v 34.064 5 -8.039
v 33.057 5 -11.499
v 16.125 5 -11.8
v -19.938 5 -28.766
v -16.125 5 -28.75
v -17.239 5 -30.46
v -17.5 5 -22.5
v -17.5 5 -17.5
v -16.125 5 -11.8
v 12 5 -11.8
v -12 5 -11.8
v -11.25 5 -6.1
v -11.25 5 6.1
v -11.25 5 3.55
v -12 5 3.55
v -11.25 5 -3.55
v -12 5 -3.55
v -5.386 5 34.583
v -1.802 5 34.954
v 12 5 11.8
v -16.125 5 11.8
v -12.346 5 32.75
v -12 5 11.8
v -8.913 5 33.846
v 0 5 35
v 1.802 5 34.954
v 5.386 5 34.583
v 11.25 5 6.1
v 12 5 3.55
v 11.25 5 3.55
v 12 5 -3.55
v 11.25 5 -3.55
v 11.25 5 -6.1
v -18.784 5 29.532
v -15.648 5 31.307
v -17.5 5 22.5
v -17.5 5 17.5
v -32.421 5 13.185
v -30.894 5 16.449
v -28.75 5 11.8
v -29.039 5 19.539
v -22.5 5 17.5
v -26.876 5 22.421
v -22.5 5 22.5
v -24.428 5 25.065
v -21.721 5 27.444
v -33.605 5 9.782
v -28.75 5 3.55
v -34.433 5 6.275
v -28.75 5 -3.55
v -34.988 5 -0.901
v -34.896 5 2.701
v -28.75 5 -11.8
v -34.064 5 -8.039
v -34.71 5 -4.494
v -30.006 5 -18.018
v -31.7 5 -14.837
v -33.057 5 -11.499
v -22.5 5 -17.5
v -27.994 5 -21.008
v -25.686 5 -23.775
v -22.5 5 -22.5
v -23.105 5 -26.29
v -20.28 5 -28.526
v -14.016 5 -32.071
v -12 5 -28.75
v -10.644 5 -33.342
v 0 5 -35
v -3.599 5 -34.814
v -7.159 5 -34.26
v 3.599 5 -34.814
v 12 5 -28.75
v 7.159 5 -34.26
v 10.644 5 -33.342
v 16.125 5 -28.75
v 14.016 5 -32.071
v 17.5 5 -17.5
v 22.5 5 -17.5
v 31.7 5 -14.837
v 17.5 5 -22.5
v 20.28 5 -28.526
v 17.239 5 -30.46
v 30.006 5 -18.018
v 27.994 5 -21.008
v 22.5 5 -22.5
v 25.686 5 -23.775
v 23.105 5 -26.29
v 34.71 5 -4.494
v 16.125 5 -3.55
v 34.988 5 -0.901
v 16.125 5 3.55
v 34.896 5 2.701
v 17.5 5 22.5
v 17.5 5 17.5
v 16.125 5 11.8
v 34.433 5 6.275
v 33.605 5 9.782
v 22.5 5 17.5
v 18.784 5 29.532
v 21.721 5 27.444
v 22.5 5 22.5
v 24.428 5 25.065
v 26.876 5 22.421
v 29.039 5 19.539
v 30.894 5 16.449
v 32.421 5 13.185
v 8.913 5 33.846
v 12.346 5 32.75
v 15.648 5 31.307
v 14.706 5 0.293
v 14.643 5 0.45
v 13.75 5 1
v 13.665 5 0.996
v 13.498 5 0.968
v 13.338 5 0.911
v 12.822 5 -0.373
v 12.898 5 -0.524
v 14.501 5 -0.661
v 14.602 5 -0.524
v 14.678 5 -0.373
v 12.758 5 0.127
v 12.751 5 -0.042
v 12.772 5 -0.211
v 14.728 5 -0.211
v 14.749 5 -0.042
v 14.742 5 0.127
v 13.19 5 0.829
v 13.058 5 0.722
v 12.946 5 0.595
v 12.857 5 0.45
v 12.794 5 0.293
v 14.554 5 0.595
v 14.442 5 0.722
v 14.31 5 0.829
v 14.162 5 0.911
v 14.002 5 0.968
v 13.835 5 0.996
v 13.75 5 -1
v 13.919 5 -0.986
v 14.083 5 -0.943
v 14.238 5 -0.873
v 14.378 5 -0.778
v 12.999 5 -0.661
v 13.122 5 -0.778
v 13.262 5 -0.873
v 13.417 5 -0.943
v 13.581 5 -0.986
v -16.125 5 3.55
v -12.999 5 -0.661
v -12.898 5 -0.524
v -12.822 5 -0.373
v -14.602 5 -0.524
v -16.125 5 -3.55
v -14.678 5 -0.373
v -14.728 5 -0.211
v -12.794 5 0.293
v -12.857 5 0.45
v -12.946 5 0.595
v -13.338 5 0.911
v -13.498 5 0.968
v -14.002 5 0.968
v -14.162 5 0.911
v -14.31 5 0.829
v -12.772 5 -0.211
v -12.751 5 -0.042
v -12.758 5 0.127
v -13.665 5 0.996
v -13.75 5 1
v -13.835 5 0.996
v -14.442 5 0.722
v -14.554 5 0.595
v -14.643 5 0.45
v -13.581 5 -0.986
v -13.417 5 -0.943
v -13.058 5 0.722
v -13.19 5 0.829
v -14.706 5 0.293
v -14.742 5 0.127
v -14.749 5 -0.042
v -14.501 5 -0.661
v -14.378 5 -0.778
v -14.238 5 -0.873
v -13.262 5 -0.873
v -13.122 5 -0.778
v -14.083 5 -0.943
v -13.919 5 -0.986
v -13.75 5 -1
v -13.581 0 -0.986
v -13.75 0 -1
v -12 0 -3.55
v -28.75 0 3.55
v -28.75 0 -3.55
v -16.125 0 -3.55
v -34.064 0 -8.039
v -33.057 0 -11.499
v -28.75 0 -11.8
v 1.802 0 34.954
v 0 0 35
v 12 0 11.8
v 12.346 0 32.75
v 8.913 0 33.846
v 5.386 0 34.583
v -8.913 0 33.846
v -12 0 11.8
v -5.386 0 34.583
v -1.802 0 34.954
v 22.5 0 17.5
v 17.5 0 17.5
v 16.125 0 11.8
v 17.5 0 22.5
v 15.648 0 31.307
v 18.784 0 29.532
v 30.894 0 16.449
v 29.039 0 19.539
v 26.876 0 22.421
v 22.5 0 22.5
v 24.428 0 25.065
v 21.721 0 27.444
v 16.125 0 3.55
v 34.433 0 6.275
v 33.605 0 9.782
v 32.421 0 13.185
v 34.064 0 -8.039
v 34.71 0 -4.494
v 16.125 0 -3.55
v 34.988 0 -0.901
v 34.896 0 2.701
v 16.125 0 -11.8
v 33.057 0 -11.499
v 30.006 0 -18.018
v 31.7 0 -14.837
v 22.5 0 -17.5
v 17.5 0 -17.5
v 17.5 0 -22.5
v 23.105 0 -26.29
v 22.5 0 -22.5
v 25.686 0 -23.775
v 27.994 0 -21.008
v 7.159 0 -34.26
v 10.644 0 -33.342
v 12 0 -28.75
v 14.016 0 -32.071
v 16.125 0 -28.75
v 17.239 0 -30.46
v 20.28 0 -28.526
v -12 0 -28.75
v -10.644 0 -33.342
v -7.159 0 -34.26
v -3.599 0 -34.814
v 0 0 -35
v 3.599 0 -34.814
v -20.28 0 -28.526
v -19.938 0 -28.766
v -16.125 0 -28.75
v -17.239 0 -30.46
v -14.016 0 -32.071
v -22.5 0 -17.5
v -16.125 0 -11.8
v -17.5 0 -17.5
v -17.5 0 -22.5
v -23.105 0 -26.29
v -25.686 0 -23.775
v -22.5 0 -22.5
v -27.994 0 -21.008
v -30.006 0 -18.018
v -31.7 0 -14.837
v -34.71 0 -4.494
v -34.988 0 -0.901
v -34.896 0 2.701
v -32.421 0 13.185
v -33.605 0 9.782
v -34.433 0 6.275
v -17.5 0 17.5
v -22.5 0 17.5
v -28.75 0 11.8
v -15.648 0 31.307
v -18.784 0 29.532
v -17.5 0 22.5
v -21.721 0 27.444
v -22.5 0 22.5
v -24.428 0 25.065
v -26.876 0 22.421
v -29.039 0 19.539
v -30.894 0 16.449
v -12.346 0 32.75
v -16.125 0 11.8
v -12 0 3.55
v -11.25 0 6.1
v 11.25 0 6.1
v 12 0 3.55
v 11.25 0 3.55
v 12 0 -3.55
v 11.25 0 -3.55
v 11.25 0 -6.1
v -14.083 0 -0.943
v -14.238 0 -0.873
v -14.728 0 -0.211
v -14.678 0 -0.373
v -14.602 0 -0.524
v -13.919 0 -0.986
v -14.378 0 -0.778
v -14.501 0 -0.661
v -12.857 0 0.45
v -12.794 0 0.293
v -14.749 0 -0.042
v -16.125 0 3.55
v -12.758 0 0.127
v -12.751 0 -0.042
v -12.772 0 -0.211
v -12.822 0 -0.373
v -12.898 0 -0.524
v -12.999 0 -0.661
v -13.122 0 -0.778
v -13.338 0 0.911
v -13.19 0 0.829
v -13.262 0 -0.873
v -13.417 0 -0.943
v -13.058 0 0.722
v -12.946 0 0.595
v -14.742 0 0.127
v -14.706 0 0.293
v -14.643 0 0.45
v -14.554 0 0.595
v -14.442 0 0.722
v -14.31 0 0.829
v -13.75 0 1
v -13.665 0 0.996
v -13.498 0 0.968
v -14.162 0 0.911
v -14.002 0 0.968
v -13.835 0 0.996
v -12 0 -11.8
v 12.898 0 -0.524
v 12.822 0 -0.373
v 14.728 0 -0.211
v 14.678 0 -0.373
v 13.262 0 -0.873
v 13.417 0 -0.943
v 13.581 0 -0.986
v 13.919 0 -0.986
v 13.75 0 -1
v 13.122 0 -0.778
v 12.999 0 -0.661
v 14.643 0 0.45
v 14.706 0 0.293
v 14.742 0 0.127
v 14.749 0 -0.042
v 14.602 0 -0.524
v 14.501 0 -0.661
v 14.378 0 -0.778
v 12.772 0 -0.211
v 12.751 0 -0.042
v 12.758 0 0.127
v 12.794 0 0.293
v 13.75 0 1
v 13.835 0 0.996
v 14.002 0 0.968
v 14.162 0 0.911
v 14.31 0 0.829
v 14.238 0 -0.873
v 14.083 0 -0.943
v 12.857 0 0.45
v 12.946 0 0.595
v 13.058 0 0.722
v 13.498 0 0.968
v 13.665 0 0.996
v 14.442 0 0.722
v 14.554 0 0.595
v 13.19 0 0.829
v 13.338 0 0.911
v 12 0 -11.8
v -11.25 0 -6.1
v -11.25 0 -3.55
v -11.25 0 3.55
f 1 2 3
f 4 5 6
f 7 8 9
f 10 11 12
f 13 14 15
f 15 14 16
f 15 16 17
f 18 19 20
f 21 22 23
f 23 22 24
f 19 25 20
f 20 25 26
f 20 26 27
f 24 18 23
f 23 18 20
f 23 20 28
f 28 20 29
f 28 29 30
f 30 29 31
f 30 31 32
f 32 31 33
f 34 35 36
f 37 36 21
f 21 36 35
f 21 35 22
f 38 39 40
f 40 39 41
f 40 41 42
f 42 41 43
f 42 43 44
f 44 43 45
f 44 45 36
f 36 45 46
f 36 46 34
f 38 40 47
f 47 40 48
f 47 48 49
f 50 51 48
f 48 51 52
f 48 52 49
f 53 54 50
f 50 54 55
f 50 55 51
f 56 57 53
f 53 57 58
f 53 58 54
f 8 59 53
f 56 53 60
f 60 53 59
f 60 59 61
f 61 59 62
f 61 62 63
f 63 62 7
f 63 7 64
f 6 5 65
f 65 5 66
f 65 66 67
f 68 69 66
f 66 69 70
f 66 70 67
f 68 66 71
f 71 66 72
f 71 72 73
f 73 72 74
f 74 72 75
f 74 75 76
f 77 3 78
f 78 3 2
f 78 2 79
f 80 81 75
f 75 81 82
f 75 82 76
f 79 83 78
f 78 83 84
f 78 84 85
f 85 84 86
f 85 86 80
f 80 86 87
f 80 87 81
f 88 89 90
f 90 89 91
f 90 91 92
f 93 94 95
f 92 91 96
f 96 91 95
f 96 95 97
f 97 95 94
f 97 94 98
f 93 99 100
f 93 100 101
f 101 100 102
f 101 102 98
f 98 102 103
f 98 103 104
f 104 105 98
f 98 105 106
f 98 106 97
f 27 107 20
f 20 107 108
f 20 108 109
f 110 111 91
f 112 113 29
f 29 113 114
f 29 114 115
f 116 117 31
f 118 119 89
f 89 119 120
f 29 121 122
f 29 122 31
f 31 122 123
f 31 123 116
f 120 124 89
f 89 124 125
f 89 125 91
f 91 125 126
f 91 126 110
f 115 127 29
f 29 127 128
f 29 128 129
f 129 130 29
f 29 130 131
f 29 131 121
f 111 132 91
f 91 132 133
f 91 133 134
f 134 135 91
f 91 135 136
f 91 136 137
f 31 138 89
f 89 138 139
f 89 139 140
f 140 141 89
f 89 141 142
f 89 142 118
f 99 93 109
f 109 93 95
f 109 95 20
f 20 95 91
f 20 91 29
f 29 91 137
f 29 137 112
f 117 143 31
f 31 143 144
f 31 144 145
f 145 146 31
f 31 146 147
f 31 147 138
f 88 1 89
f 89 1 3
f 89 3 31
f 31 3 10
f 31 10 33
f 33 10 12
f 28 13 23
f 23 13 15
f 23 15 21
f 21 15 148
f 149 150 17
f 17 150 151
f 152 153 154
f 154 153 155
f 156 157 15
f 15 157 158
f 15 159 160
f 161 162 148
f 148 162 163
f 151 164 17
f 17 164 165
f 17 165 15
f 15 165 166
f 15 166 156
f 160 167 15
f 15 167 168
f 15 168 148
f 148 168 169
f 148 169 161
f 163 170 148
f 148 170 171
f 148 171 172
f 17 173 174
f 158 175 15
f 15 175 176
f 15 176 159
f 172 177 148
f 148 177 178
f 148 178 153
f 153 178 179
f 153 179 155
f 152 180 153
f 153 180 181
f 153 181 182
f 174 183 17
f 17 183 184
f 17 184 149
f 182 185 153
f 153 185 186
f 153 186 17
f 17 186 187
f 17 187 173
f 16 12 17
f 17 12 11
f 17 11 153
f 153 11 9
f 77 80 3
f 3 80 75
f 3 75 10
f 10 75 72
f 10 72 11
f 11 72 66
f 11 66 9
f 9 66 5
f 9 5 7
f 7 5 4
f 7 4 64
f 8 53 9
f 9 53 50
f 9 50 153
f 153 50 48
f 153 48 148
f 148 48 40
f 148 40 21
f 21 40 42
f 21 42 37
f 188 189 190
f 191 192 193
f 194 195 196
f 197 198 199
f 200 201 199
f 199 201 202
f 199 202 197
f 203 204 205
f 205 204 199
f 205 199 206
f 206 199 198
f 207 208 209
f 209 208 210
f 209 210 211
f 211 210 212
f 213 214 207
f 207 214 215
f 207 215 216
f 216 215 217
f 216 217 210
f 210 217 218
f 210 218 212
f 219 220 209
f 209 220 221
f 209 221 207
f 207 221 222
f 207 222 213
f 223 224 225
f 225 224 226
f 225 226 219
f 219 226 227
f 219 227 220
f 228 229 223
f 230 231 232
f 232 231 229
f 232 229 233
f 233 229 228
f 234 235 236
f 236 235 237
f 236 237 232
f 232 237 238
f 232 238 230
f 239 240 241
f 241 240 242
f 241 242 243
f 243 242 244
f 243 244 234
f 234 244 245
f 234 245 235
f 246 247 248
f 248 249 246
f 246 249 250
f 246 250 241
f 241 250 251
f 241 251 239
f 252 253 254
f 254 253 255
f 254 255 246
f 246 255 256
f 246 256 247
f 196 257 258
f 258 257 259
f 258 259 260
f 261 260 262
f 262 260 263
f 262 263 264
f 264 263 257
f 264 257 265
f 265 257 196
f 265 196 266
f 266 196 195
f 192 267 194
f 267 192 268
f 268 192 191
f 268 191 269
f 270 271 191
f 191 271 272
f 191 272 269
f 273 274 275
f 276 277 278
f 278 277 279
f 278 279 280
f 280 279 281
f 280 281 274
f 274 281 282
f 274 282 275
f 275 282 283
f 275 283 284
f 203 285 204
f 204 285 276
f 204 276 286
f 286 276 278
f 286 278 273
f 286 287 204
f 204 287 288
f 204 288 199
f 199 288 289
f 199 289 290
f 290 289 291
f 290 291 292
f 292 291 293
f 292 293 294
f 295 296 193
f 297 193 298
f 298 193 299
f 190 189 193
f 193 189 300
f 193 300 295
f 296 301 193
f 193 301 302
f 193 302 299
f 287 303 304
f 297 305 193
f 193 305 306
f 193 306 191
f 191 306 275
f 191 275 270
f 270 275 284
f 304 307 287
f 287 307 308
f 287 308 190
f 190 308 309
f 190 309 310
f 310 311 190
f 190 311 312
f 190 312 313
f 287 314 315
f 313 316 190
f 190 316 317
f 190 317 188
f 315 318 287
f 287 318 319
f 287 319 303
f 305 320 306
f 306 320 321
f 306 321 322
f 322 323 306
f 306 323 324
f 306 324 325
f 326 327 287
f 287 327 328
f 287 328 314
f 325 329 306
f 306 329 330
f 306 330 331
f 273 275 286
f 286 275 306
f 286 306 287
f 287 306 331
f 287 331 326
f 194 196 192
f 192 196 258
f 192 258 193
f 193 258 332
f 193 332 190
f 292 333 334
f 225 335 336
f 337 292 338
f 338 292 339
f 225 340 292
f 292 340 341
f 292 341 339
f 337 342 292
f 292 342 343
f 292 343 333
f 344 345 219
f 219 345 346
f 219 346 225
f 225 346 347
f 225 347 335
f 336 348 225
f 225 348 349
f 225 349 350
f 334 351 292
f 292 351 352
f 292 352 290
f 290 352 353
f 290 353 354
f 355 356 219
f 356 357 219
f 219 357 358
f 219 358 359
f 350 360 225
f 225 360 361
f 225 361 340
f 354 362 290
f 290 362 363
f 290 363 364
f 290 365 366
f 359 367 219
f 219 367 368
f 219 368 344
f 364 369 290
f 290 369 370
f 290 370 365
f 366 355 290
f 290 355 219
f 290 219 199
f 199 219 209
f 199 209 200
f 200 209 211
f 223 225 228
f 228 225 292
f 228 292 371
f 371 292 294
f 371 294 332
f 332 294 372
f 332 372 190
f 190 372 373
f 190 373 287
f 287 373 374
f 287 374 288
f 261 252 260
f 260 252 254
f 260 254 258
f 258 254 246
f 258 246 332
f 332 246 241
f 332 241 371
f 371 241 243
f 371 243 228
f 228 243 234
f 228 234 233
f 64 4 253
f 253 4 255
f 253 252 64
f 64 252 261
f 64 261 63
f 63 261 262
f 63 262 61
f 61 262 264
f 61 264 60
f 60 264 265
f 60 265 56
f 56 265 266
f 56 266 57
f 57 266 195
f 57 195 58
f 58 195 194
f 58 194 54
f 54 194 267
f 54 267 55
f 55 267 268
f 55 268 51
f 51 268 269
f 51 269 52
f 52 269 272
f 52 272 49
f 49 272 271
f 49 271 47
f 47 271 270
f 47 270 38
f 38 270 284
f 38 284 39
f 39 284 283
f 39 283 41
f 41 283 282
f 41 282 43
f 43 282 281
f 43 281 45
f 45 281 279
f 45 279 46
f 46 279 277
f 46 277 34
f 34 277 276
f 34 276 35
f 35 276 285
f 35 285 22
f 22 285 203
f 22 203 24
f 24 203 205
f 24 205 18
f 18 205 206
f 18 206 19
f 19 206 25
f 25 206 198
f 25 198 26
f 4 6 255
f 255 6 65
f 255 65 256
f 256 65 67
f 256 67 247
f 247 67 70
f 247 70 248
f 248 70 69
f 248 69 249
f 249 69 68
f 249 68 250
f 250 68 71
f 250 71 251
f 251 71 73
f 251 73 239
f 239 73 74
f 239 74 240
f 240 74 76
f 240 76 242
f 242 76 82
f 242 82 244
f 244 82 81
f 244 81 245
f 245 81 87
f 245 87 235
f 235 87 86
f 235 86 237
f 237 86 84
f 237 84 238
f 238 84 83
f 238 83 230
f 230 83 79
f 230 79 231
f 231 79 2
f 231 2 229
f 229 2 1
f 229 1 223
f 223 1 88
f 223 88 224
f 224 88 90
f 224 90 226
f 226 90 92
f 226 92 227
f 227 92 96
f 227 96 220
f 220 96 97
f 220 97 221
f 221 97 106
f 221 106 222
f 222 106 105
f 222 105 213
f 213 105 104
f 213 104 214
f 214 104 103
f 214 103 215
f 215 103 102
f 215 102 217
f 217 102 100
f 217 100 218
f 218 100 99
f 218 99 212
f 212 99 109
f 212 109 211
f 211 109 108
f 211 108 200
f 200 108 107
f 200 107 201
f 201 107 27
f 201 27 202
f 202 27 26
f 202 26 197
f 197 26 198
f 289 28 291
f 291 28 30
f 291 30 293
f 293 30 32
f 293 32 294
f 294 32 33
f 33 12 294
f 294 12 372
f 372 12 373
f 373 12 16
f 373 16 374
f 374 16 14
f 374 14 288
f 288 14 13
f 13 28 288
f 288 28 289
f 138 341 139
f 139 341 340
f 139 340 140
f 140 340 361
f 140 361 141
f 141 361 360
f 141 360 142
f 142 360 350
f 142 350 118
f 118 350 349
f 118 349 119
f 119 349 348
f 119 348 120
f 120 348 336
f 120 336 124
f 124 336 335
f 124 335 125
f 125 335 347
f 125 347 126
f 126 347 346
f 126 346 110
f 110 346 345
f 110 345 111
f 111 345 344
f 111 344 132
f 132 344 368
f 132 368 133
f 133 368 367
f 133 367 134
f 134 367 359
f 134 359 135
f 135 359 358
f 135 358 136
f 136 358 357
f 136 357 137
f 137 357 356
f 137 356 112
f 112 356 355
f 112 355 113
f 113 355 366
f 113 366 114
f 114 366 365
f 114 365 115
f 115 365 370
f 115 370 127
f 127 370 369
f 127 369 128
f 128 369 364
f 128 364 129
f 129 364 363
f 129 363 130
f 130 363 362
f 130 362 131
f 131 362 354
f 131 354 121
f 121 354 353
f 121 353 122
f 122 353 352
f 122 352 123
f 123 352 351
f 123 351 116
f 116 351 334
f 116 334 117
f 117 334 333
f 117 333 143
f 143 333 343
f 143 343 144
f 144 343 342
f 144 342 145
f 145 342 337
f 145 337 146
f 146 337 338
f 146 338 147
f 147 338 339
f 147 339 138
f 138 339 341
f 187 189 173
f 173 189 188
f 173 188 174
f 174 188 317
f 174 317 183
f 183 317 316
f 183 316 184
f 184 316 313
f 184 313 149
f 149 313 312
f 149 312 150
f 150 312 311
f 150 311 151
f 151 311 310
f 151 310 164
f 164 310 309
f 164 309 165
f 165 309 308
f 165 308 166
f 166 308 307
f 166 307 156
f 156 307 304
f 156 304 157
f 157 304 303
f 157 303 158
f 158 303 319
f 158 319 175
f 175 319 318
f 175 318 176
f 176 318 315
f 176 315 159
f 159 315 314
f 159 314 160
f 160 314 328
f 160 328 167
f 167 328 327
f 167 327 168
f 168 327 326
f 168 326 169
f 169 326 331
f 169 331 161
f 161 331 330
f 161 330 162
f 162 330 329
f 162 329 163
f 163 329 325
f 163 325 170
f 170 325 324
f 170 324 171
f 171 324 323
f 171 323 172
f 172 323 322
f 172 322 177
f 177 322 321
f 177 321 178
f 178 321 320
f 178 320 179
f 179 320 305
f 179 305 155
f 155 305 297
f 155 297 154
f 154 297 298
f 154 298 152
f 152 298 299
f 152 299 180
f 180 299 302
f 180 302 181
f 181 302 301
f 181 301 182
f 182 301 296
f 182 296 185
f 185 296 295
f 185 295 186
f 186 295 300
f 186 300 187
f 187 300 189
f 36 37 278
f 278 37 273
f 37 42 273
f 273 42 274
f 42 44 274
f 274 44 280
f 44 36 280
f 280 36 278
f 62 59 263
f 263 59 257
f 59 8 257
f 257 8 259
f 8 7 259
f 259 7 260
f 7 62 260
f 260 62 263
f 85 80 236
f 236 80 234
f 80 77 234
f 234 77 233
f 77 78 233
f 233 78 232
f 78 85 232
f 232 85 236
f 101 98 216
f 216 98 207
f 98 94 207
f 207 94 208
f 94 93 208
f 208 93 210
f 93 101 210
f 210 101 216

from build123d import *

# Parameters (mm, degrees)
SKETCH1_R           = 35
SKETCH1_R_2         = 1
SKETCH1_W           = 22.5
SKETCH1_H           = 12.2
SKETCH1_W_2         = 5
SKETCH1_H_2         = 5
BOSS_EXTRUDE1_DEPTH = 5


with BuildPart() as part:
    # Sketch1 → Boss-Extrude1 (new body)
    with BuildSketch(Plane(origin=(0, 0, 0), x_dir=(1, 0, 0), z_dir=(0, 1, 0))):
        with Locations(Location((0, 0, 0), (0, 0, 270))):
            Circle(SKETCH1_R)
        with Locations(Location((13.75, 0, 0), (0, 0, 270))):
            Circle(SKETCH1_R_2, mode=Mode.SUBTRACT)
        with Locations(Location((-13.75, 0, 0), (0, 0, 270))):
            Circle(SKETCH1_R_2, mode=Mode.SUBTRACT)
        Rectangle(SKETCH1_W, SKETCH1_H, mode=Mode.SUBTRACT)
        with Locations((-20, -20)):
            Rectangle(SKETCH1_W_2, SKETCH1_H_2, mode=Mode.SUBTRACT)
        with Locations((-20, 20)):
            Rectangle(SKETCH1_W_2, SKETCH1_H_2, mode=Mode.SUBTRACT)
        with Locations((20, 20)):
            Rectangle(SKETCH1_W_2, SKETCH1_H_2, mode=Mode.SUBTRACT)
        with Locations((20, -20)):
            Rectangle(SKETCH1_W_2, SKETCH1_H_2, mode=Mode.SUBTRACT)
    extrude(amount=BOSS_EXTRUDE1_DEPTH)


solid = part.part
